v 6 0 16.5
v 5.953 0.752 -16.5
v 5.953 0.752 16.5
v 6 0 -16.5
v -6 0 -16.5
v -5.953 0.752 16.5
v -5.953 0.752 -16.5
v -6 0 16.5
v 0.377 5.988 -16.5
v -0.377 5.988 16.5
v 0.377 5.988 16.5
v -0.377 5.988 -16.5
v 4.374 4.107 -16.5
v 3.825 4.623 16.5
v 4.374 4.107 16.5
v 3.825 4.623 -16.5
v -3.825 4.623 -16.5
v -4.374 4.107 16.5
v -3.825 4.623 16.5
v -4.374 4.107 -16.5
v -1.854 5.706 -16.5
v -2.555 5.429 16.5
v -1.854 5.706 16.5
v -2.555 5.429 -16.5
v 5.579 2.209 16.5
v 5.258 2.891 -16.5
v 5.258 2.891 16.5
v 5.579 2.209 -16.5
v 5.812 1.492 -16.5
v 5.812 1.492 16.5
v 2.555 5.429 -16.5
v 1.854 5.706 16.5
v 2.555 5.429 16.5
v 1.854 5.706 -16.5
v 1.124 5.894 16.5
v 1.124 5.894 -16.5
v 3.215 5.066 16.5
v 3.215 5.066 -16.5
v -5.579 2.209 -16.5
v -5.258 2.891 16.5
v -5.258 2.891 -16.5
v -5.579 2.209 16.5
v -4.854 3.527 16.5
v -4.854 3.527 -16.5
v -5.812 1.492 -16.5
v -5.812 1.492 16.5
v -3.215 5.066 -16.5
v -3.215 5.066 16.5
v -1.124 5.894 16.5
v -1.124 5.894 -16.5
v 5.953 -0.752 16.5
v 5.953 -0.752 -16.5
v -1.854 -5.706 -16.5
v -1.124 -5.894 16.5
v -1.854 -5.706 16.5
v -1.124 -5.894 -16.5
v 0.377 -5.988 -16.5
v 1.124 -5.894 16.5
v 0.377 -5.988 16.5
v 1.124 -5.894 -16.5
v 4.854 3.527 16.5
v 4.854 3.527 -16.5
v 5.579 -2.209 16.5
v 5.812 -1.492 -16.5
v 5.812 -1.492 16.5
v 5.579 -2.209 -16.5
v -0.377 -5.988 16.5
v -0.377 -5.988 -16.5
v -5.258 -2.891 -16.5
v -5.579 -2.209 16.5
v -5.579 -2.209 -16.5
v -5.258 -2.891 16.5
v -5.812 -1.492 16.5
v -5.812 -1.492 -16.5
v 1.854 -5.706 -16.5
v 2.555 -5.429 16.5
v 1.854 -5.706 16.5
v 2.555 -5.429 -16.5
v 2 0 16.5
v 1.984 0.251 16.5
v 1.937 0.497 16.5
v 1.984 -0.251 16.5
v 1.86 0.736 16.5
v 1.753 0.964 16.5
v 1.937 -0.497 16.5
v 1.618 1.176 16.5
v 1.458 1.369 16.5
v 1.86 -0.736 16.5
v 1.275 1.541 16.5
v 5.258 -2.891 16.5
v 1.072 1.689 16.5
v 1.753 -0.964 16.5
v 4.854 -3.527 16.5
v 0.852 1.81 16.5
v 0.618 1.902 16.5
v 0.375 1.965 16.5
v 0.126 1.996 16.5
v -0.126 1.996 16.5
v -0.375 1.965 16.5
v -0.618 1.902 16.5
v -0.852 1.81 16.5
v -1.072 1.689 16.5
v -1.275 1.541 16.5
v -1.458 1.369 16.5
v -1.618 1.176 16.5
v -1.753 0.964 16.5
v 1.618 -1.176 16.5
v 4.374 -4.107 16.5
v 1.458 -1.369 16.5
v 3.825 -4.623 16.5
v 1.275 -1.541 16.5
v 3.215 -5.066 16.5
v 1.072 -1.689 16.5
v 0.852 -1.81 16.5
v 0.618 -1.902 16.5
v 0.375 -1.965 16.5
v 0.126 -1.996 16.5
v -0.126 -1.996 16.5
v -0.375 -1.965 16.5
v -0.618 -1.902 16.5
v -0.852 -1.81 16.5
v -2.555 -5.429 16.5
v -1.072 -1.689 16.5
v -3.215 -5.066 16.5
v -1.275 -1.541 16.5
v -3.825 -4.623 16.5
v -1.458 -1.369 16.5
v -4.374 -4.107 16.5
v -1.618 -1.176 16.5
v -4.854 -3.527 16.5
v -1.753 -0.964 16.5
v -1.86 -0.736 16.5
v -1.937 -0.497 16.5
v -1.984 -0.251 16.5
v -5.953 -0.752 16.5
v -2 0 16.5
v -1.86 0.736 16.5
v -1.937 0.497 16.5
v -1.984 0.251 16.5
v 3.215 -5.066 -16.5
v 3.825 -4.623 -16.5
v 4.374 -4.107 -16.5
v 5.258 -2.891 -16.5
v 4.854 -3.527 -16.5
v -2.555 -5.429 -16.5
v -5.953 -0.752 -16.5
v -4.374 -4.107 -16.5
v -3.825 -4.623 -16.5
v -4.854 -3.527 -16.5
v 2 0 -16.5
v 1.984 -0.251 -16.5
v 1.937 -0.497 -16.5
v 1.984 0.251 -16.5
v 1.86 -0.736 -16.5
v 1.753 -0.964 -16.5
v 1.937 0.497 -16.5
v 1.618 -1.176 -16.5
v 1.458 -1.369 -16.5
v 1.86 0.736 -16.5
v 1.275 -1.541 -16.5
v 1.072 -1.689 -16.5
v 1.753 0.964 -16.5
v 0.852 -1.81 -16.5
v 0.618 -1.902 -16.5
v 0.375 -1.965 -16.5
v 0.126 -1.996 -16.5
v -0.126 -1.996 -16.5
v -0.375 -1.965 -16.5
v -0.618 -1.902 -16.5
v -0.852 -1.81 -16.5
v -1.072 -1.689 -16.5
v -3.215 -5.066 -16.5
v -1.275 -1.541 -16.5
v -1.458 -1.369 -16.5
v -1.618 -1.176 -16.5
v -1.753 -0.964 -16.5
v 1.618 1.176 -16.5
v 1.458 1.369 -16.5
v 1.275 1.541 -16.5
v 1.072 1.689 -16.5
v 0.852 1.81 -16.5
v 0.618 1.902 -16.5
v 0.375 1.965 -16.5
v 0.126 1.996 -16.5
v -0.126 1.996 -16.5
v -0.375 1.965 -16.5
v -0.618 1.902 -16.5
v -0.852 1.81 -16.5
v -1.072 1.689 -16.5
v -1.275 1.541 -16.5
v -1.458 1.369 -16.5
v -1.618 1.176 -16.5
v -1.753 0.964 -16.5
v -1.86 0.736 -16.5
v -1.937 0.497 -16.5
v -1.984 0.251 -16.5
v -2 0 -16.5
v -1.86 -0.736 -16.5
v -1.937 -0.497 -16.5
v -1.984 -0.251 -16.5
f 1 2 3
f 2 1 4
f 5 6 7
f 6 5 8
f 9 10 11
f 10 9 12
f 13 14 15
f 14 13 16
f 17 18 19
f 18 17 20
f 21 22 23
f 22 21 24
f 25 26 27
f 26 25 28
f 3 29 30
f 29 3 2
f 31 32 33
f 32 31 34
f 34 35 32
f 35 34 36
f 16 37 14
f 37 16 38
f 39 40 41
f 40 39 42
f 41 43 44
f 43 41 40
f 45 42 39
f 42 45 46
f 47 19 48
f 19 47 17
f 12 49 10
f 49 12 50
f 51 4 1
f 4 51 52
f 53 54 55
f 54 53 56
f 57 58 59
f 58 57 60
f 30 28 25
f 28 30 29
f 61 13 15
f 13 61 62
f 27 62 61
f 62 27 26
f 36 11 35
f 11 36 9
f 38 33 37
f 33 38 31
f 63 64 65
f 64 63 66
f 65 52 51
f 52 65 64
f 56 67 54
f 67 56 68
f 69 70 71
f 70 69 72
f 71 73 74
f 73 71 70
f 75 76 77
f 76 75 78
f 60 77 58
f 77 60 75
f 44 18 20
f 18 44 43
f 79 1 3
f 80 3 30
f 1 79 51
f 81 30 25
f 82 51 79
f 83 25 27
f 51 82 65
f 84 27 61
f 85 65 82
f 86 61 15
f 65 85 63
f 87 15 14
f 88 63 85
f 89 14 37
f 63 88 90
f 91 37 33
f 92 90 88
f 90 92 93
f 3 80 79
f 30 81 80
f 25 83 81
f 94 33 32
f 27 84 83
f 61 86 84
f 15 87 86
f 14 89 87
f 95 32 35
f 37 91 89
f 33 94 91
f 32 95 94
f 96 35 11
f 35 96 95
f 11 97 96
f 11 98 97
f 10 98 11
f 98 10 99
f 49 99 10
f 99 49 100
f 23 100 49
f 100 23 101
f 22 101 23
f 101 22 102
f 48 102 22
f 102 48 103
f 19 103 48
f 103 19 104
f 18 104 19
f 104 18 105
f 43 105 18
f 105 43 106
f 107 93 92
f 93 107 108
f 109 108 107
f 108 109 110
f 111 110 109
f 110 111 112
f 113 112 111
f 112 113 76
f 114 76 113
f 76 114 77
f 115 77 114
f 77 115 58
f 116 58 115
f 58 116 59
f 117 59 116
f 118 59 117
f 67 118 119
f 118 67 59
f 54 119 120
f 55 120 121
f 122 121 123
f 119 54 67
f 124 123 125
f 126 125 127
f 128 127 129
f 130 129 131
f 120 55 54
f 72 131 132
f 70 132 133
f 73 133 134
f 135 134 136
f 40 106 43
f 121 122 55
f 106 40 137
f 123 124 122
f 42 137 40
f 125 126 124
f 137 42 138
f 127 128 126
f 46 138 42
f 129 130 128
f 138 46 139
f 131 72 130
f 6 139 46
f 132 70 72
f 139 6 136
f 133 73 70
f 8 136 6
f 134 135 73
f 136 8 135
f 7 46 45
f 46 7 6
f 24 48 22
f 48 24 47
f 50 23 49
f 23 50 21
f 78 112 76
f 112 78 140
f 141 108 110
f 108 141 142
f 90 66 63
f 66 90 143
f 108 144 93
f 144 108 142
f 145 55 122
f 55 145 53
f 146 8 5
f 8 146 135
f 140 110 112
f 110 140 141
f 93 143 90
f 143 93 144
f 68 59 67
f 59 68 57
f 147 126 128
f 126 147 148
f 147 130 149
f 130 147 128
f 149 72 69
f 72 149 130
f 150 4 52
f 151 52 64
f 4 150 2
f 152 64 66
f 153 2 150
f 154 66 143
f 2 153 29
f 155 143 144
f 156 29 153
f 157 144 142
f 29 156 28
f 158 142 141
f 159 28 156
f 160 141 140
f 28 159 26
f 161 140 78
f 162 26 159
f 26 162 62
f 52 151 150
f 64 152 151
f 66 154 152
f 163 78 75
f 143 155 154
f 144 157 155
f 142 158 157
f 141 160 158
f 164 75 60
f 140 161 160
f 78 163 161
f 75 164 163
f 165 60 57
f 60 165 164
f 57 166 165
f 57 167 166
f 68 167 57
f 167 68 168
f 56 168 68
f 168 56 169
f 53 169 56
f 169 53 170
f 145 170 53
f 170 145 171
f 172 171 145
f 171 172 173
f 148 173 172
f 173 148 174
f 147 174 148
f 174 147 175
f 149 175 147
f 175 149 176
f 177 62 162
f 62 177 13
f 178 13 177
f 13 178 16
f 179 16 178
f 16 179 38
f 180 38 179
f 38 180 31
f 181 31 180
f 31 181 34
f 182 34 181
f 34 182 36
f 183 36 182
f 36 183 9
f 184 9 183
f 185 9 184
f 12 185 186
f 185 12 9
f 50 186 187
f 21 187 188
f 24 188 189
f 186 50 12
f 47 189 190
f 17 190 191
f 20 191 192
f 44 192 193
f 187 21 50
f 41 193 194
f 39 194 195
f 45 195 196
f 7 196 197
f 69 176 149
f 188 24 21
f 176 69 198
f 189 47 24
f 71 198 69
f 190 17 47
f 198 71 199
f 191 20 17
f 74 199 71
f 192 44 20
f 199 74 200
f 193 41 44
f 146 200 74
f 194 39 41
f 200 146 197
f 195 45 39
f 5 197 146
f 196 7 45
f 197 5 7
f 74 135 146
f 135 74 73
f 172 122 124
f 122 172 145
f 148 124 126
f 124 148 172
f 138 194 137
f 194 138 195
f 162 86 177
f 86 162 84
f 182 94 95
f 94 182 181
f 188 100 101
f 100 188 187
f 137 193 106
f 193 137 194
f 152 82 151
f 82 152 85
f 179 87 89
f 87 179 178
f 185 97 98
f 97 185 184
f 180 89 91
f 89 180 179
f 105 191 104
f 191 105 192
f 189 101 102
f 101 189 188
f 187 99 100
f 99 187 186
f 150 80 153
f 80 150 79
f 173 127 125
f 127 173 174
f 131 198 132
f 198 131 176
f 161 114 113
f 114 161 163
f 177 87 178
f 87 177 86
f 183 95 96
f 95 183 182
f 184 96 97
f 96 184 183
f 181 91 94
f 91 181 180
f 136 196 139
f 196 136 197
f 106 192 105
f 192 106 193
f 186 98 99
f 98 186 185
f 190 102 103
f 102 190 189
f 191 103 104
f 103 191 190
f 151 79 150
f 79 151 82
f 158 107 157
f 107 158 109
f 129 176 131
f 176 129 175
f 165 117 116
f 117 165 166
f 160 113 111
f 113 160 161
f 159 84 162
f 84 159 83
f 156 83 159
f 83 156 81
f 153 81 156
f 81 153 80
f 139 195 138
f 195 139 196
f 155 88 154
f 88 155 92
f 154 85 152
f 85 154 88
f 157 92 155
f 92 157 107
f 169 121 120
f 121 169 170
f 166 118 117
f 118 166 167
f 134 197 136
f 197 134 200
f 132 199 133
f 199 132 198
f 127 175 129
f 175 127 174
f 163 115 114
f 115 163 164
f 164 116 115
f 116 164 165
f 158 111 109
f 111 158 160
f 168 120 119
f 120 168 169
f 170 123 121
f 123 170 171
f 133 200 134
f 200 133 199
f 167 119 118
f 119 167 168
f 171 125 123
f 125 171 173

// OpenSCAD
$fn = 50;


difference() {
	union() {
		translate(v = [0, 0, -16.5000000000]) {
			cylinder(h = 33, r = 6.0000000000);
		}
	}
	union() {
		translate(v = [0, 0, -100.0000000000]) {
			cylinder(h = 200, r = 2.0000000000);
		}
	}
}
